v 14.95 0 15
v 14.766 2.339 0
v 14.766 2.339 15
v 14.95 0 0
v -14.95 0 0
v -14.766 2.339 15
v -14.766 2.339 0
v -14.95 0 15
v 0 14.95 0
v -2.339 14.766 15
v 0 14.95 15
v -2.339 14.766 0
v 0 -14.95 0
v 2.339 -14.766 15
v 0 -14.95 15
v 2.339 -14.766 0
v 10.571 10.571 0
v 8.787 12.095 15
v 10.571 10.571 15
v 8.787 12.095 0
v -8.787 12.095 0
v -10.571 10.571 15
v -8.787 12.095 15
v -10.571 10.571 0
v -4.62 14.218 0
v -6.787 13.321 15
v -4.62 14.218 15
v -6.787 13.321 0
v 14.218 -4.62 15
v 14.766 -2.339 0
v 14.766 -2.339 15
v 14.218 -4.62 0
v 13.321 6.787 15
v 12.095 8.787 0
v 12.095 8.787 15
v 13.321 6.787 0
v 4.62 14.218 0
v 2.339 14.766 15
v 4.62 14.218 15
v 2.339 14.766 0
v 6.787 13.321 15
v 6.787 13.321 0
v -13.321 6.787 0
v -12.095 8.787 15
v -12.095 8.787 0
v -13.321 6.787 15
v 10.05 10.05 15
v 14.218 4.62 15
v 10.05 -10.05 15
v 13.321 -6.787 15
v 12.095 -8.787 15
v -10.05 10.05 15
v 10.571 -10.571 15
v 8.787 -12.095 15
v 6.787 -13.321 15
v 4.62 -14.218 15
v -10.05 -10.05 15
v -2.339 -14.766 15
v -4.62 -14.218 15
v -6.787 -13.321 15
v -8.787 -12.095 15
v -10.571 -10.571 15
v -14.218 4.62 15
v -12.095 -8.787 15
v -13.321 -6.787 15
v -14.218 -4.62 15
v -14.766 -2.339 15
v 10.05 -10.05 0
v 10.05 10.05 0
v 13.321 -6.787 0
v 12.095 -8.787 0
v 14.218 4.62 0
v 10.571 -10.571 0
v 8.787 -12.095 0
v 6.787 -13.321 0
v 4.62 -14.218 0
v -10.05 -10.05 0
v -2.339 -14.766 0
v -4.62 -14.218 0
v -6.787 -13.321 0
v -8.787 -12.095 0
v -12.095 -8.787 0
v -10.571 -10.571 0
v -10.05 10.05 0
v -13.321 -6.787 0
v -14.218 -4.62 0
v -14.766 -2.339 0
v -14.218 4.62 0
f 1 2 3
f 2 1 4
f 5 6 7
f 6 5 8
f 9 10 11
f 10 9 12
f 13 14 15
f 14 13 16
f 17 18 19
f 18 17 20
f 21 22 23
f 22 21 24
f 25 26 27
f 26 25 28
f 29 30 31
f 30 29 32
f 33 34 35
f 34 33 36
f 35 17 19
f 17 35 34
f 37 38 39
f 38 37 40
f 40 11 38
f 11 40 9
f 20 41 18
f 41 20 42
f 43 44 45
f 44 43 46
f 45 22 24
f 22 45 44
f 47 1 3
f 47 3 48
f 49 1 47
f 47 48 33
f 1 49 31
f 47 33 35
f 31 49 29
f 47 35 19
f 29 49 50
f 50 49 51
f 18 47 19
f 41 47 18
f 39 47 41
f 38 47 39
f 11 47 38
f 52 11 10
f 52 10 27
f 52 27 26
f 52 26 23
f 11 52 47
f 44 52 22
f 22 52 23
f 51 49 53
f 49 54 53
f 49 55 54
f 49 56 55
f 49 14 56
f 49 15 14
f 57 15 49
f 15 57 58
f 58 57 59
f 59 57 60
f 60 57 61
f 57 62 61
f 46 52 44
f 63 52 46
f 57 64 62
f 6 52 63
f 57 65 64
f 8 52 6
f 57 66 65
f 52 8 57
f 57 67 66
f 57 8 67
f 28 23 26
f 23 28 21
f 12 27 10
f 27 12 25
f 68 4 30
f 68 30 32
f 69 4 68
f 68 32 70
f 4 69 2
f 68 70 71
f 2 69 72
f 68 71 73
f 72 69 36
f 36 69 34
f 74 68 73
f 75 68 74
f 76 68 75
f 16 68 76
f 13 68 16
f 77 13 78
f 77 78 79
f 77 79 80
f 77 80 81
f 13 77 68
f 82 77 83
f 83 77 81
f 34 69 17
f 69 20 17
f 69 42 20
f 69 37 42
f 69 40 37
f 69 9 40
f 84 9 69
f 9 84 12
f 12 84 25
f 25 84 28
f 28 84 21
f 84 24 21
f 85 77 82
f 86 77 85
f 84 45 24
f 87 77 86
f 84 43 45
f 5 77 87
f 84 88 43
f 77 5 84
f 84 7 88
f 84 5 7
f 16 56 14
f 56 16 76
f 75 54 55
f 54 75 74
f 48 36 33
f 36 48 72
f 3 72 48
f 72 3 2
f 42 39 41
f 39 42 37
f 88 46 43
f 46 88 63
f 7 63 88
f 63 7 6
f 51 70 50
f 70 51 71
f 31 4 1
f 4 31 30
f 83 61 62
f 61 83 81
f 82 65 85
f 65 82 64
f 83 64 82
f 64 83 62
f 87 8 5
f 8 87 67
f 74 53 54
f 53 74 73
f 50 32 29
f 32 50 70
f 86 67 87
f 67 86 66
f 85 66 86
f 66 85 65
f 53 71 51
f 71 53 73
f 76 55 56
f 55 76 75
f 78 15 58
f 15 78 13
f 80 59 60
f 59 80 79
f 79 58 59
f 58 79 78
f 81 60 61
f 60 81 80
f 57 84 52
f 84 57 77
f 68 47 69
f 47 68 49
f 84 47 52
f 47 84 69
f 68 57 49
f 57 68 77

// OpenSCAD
difference(){
translate([0,0,0])cylinder(r=29.9/2, h=15, $fn=40);
 translate([-20.1/2,-20.1/2,-1])cube([20.1,20.1,42]);   
}
